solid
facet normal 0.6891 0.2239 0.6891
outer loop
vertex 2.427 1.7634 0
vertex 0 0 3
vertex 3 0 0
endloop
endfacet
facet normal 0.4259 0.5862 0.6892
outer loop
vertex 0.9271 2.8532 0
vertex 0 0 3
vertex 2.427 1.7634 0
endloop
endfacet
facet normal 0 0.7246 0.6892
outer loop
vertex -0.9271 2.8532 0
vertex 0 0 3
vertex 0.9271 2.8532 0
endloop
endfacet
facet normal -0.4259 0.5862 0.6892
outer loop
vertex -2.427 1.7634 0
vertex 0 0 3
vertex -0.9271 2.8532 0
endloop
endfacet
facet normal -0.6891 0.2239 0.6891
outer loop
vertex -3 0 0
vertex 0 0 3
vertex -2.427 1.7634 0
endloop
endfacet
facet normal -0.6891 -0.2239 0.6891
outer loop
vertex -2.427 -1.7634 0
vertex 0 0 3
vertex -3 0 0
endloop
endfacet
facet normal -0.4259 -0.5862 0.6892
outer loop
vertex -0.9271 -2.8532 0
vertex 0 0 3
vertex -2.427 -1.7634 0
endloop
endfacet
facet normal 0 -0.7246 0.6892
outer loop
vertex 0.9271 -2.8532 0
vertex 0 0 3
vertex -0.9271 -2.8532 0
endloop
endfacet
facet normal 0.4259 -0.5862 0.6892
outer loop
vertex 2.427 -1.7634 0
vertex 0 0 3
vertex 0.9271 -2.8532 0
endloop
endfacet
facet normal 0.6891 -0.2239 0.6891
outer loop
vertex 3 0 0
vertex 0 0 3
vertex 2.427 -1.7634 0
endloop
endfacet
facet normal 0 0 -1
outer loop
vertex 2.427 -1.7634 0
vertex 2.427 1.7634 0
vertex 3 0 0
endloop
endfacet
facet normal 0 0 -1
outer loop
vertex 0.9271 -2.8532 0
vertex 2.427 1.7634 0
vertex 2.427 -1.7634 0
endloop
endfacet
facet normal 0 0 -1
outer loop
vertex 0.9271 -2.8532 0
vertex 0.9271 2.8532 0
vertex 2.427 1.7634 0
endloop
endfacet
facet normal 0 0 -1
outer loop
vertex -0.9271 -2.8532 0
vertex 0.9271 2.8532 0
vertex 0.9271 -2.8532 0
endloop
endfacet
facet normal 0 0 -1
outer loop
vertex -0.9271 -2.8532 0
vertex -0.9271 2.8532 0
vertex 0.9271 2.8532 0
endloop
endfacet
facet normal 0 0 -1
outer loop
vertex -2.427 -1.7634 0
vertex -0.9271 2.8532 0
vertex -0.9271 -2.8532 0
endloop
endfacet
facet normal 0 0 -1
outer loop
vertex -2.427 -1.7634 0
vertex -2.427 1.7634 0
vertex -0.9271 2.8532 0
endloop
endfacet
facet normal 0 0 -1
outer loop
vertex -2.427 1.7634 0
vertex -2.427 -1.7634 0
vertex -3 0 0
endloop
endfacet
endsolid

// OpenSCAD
cylinder(h=3, r1=3, r2=0);

// translate([3.1, 0, 0]) {
//     cylinder(h=3, r1=0, r2=3);
// }
